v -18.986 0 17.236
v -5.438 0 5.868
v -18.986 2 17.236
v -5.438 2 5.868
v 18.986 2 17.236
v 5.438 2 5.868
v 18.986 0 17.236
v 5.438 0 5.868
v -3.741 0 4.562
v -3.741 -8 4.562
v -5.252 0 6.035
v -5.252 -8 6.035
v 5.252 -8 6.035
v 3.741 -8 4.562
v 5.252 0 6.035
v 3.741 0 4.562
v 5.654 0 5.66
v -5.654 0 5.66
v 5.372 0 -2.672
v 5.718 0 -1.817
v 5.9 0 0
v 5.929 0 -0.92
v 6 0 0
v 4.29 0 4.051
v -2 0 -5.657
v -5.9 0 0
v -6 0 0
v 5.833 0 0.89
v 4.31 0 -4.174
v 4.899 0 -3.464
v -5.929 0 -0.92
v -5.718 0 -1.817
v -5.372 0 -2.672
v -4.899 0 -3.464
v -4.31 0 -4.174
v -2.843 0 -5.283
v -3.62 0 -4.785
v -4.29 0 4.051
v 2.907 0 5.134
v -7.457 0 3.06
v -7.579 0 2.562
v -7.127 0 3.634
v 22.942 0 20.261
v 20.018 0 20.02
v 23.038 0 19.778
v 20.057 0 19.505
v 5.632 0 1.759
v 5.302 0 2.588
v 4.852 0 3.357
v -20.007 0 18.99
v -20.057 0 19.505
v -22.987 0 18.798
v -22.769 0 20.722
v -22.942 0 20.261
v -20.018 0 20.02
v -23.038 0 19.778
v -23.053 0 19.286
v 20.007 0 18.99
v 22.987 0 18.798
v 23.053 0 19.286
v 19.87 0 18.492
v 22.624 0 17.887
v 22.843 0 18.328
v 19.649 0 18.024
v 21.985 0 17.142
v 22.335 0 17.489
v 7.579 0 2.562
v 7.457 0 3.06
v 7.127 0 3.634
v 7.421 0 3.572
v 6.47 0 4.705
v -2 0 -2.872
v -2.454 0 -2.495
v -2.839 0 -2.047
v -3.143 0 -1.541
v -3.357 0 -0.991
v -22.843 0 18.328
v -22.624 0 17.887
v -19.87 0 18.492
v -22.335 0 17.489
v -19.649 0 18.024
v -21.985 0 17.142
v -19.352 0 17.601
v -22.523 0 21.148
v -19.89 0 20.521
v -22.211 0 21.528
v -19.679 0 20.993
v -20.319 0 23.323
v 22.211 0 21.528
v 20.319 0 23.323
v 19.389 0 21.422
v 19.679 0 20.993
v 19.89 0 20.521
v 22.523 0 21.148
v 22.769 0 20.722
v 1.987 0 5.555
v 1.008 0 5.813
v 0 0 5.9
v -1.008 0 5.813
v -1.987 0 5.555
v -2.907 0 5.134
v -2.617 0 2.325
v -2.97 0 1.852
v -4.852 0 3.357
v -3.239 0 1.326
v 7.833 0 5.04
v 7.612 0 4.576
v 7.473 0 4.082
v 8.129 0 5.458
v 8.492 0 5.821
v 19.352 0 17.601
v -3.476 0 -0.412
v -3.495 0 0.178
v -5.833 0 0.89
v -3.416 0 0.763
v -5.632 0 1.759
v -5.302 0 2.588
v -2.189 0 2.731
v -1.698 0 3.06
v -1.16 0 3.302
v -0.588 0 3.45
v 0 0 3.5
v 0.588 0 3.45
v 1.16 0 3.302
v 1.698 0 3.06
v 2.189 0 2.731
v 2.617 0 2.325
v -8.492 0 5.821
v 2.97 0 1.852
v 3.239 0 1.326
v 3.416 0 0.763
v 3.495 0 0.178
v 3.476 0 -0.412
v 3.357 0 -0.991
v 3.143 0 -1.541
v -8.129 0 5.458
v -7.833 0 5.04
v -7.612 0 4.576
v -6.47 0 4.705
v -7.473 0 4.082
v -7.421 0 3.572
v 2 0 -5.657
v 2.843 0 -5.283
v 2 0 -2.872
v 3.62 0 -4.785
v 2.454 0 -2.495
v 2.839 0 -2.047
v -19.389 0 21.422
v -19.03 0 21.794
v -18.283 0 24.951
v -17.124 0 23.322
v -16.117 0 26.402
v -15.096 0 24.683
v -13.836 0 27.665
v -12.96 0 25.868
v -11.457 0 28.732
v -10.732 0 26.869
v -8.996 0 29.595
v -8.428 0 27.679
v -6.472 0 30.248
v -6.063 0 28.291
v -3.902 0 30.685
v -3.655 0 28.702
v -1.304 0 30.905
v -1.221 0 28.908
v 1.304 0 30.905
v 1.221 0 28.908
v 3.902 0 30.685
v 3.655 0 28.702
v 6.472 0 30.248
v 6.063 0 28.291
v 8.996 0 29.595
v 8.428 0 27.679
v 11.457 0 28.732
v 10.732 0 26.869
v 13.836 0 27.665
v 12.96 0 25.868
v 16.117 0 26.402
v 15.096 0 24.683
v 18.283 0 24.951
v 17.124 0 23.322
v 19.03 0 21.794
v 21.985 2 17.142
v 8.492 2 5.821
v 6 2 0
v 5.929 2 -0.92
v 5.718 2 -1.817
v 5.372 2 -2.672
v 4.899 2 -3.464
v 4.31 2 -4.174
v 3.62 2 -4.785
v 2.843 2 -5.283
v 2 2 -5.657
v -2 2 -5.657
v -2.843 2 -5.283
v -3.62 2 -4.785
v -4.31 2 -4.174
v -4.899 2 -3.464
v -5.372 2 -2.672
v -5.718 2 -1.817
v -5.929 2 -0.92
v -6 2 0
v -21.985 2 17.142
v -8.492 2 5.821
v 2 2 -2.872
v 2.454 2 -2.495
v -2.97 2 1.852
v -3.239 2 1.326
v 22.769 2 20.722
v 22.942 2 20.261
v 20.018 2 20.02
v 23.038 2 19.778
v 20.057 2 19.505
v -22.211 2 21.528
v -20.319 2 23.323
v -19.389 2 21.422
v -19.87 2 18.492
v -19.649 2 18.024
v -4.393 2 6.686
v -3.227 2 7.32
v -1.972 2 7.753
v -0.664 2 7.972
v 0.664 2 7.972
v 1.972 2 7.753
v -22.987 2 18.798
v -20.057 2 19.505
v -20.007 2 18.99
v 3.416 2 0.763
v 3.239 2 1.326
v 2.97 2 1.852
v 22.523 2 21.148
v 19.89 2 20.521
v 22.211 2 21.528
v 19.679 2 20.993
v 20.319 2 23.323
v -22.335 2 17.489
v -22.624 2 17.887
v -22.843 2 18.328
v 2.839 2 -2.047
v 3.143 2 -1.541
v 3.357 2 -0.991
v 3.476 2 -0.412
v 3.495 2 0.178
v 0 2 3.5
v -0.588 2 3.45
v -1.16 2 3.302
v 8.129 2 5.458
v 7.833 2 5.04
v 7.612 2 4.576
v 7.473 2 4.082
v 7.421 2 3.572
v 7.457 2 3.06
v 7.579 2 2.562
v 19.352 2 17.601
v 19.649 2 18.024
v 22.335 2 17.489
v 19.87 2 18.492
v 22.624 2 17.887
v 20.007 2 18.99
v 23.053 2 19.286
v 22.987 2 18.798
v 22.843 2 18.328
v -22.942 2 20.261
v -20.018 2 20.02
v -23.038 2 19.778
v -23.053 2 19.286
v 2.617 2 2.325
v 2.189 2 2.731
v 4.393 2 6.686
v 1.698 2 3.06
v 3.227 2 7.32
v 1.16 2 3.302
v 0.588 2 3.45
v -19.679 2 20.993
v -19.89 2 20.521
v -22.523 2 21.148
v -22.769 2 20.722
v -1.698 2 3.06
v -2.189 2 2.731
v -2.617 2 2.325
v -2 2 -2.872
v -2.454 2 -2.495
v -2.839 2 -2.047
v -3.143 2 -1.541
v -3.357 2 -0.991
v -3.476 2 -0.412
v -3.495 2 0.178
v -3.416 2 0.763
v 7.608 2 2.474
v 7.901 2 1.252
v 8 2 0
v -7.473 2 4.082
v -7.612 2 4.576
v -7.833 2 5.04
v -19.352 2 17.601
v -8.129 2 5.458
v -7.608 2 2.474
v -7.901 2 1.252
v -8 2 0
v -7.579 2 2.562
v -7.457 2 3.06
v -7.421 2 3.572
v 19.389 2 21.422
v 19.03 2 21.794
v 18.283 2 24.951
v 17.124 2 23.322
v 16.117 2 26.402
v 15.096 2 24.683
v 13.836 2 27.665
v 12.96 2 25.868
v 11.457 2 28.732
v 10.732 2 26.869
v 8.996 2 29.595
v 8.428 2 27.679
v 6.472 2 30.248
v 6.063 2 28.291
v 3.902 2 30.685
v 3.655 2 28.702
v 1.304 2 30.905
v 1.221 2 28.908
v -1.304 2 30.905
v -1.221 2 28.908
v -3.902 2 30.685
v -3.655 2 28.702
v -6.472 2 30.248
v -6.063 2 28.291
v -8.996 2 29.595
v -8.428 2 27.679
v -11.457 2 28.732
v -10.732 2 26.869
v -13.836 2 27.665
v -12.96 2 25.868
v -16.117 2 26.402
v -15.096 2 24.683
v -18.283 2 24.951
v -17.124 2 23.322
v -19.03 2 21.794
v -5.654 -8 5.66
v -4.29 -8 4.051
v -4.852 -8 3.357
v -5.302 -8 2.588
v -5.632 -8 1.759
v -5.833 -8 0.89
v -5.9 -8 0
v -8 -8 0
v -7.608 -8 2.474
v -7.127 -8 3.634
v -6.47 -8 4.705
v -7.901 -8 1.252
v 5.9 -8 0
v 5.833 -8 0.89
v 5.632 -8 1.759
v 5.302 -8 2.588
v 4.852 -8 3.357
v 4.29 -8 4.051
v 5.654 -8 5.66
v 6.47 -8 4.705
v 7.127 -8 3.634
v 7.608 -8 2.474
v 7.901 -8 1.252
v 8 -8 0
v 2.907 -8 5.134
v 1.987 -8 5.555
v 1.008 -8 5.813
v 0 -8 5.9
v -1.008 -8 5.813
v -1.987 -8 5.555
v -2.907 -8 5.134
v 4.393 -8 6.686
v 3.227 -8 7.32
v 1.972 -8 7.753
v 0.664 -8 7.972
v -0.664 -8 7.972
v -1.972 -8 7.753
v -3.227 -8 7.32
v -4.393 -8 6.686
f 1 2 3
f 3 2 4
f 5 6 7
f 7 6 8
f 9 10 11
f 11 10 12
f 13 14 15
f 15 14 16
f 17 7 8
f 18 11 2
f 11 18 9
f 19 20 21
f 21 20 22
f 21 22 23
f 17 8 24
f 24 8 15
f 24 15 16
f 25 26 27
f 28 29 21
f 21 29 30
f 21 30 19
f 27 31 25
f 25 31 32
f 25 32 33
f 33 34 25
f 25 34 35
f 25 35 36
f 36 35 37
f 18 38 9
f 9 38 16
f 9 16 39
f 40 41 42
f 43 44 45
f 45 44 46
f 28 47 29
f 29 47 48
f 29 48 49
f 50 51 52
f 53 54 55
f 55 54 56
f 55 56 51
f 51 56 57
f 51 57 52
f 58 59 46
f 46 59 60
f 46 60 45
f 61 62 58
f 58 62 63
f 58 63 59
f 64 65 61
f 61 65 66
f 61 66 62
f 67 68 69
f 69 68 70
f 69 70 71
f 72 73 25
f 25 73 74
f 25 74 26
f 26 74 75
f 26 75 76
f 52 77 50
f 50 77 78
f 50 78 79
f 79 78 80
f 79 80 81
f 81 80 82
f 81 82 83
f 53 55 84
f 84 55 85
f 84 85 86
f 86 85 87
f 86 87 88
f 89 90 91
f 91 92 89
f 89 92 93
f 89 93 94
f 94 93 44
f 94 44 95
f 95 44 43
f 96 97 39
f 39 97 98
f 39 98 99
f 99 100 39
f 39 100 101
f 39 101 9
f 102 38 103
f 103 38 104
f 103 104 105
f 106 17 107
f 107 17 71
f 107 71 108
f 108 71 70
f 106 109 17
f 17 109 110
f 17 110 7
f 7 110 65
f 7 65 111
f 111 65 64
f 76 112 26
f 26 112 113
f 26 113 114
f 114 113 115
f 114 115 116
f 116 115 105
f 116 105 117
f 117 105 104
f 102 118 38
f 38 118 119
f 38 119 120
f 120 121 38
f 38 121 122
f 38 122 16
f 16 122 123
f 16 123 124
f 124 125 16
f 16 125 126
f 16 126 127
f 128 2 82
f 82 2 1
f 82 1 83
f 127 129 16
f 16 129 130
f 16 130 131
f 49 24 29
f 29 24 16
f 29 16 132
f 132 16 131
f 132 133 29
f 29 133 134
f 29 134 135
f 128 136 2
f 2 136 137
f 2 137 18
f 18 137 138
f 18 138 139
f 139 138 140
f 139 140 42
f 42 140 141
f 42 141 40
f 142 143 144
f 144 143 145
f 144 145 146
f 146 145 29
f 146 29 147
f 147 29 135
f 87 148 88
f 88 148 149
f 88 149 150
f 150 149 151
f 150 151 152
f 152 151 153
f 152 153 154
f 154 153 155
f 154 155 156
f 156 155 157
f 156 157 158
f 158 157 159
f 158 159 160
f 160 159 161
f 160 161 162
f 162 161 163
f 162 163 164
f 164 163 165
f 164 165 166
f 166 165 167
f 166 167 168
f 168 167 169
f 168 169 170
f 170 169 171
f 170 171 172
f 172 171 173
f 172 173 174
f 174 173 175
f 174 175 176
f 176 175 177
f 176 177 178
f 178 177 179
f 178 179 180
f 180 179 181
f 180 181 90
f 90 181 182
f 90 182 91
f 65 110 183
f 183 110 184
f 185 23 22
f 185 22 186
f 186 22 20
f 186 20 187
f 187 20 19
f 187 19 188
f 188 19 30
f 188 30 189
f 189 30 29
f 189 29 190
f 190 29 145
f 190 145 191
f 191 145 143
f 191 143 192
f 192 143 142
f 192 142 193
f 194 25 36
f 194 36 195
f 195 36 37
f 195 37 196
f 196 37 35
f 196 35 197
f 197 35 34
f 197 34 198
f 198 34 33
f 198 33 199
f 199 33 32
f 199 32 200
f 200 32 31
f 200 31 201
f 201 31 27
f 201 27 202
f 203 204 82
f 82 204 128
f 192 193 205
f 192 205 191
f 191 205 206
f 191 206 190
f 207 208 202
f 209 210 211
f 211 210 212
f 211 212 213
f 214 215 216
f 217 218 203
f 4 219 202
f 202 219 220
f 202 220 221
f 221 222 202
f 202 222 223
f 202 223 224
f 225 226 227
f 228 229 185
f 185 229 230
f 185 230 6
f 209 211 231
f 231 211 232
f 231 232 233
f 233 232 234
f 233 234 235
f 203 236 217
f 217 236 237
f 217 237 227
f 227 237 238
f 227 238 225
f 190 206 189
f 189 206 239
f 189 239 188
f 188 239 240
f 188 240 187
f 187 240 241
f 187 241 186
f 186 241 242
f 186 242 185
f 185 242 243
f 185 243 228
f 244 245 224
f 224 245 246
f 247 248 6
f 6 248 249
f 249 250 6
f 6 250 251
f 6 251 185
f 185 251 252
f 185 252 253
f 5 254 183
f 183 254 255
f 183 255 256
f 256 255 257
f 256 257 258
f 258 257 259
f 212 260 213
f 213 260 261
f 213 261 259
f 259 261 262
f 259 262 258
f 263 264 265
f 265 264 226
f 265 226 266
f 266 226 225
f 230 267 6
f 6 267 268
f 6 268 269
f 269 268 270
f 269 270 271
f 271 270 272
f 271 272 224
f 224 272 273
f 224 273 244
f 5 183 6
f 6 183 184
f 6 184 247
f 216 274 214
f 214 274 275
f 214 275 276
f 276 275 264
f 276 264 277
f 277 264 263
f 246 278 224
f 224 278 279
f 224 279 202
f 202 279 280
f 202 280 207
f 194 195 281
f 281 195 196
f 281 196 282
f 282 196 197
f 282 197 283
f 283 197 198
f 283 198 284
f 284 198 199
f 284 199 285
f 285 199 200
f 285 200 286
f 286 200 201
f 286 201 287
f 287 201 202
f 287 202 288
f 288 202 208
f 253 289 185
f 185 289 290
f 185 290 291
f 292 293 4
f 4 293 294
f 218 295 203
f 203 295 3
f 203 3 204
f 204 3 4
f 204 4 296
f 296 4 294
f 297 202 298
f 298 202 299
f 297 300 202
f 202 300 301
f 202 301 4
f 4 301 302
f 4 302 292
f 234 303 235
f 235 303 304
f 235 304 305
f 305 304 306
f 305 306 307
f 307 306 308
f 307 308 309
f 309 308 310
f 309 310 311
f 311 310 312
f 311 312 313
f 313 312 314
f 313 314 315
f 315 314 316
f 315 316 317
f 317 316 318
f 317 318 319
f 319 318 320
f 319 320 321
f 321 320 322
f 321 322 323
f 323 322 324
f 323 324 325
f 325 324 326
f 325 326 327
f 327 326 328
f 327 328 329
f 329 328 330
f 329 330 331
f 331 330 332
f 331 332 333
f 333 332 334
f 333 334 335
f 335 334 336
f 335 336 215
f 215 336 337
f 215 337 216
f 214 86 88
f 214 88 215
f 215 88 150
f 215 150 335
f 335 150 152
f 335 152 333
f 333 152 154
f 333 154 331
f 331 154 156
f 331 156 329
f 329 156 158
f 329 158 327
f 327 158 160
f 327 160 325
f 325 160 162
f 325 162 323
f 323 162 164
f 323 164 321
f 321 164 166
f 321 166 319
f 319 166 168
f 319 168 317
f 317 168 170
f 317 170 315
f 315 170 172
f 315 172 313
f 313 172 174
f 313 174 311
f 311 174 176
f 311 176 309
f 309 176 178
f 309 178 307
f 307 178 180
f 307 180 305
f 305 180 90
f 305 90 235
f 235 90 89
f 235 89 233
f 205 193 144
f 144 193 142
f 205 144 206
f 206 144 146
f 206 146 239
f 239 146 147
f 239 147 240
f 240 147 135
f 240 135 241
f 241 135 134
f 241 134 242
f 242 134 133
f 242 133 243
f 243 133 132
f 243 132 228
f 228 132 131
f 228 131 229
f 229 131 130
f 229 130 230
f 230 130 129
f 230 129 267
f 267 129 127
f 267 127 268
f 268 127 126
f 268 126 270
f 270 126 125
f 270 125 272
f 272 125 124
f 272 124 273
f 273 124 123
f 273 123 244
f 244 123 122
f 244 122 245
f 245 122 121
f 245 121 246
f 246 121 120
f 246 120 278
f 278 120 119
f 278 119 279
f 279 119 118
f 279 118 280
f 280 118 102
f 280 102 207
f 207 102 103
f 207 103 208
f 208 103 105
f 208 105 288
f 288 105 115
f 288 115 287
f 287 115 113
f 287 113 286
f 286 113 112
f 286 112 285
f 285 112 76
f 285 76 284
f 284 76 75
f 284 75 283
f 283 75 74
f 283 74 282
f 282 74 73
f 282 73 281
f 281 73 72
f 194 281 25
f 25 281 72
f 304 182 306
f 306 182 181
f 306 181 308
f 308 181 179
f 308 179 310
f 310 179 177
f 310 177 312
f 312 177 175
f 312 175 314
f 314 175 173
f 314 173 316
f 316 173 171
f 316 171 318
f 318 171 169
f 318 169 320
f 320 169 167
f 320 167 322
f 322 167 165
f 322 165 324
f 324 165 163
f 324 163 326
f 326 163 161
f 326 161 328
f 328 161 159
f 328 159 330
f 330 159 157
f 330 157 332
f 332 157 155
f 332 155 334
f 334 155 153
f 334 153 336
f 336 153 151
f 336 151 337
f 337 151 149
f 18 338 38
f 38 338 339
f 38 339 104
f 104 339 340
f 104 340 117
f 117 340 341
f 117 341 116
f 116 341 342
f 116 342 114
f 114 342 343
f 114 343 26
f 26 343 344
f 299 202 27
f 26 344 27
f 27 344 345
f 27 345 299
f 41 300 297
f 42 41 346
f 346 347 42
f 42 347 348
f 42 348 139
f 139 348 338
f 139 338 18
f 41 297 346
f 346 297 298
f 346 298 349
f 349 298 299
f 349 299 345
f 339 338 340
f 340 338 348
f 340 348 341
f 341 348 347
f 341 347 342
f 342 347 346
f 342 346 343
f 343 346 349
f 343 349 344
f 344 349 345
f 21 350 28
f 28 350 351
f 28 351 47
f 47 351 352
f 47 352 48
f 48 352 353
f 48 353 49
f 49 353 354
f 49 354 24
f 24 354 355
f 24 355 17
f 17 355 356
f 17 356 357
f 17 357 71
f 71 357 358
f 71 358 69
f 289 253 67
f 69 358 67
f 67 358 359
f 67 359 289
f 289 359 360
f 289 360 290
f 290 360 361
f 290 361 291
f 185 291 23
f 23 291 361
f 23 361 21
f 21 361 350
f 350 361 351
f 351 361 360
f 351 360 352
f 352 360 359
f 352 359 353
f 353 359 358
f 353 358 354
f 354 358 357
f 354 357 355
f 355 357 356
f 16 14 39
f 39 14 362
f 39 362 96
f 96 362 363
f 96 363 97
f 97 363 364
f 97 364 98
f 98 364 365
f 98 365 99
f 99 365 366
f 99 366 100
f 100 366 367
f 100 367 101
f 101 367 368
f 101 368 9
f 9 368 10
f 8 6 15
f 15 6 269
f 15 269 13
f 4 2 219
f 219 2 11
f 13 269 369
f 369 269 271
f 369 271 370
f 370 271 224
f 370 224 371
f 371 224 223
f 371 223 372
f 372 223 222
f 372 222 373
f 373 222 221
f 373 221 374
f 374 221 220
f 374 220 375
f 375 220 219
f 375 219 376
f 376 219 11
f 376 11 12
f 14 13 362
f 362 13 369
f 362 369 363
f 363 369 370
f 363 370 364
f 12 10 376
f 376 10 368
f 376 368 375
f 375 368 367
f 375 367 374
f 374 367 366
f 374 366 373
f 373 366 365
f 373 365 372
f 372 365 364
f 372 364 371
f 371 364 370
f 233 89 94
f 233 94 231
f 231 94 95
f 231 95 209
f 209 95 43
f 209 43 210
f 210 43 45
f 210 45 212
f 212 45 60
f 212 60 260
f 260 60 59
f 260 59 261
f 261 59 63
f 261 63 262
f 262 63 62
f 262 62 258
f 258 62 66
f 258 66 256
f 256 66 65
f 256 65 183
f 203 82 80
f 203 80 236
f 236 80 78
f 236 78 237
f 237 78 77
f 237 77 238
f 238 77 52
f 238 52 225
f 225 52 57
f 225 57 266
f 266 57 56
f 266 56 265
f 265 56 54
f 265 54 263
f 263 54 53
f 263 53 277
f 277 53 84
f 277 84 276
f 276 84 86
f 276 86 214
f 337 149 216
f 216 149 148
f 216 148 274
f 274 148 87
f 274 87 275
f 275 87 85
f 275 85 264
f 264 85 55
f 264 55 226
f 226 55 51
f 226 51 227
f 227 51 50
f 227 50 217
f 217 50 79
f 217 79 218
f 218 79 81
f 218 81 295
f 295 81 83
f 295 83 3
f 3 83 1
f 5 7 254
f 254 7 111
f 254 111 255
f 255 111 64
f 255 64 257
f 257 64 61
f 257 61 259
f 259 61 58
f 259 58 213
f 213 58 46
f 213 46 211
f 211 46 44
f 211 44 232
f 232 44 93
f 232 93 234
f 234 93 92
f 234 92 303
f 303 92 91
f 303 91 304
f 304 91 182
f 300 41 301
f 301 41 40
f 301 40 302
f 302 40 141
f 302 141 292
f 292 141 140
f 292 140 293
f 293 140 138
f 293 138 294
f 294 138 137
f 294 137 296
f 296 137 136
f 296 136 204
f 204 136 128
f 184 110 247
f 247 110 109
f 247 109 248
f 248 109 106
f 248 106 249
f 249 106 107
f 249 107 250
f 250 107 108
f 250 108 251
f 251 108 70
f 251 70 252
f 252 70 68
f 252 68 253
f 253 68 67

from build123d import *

# Parameters (mm, degrees)
BOSS_EXTRUDE1_DEPTH             = 2
BOSS_EXTRUDE2_DEPTH             = 8
BOSS_EXTRUDE2_DIRECTION_2_REACH = 41.402
BOSS_EXTRUDE3_START             = 2
BOSS_EXTRUDE3_DEPTH             = 2
FILLET1_R                       = 3


with BuildPart() as part:
    # Sketch1 → Boss-Extrude1 (new body)
    with BuildSketch(Plane(origin=(0, 0, 0), x_dir=(1, 0, 0), z_dir=(0, 1, 0))):
        with BuildLine():
            Line((-2, 2.872281323), (-2, 5.656854249))
            ThreePointArc((-2, 5.656854249), (-3.622947325, 4.782703491), (-4.903918858, 3.457105702))
            ThreePointArc((-4.903918858, 3.457105702), (-5.994787991, 0.250033892), (-5.174767653, -3.036738339))
            Line((-5.174767653, -3.036738339), (-24.325878731, -19.106428582))
            ThreePointArc((-24.325878731, -19.106428582), (0, -30.932248369), (24.325878731, -19.106428582))
            Line((24.325878731, -19.106428582), (5.174767653, -3.036738339))
            ThreePointArc((5.174767653, -3.036738339), (5.869268357, 1.245668074), (3.495228191, 4.876820675))
            ThreePointArc((3.495228191, 4.876820675), (2.775156989, 5.319633793), (2, 5.656854249))
            Line((2, 5.656854249), (2, 2.872281323))
            ThreePointArc((2, 2.872281323), (0, -3.5), (-2, 2.872281323))
        make_face()
        with BuildLine():
            Line((21.508214625, -19.352942248), (3.889192433, -4.568827226))
            ThreePointArc((3.889192433, -4.568827226), (1.593935567, -5.784407438), (-1, -5.916079783))
            ThreePointArc((-1, -5.916079783), (-2.53570957, -5.437846722), (-3.889192433, -4.568827226))
            Line((-3.889192433, -4.568827226), (-21.508214625, -19.352942248))
            ThreePointArc((-21.508214625, -19.352942248), (0, -28.933366033), (21.508214625, -19.352942248))
        make_face(mode=Mode.SUBTRACT)
    extrude(amount=BOSS_EXTRUDE1_DEPTH)

    # Sketch2 → Boss-Extrude2 (add)
    with BuildSketch(Plane(origin=(0, 0, 0), x_dir=(1, 0, 0), z_dir=(0, 1, 0))):
        with BuildLine():
            Line((-8, 0), (-5.9, 0))
            ThreePointArc((-5.9, 0), (-5.482722017, -2.179394246), (-4.289912109, -4.050512819))
            Line((-4.289912109, -4.050512819), (-5.653884688, -5.659822253))
            ThreePointArc((-5.653884688, -5.659822253), (-7.390232659, -3.063406804), (-8, 0))
        make_face()
        with BuildLine():
            Line((8, 0), (5.9, 0))
            ThreePointArc((5.9, 0), (5.482722017, -2.179394246), (4.289912109, -4.050512819))
            Line((4.289912109, -4.050512819), (5.653884688, -5.659822253))
            ThreePointArc((5.653884688, -5.659822253), (7.390232659, -3.063406804), (8, 0))
        make_face()
        with BuildLine():
            Line((3.741396832, -4.562011589), (5.251640152, -6.034921351))
            ThreePointArc((5.251640152, -6.034921351), (0, -8), (-5.251640152, -6.034921351))
            Line((-5.251640152, -6.034921351), (-3.741396832, -4.562011589))
            ThreePointArc((-3.741396832, -4.562011589), (0, -5.9), (3.741396832, -4.562011589))
        make_face()
    extrude(amount=-BOSS_EXTRUDE2_DEPTH)

    # Boss-Extrude2 direction 2: up to this face of the body (flat: up to its plane)
    boss_extrude2_direction_2_end = Plane(part.part.faces().sort_by_distance((14.359026746, 2, 11.537912405))[0])
    # Sketch2 → Boss-Extrude2 direction 2 (add, up to the picked face)
    with BuildSketch(Plane(origin=(0, 0, 0), x_dir=(1, 0, 0), z_dir=(0, 1, 0)), mode=Mode.PRIVATE) as boss_extrude2_direction_2_sk1:
        with BuildLine():
            Line((-8, 0), (-5.9, 0))
            ThreePointArc((-5.9, 0), (-5.482722017, -2.179394246), (-4.289912109, -4.050512819))
            Line((-4.289912109, -4.050512819), (-5.653884688, -5.659822253))
            ThreePointArc((-5.653884688, -5.659822253), (-7.390232659, -3.063406804), (-8, 0))
        make_face()
    boss_extrude2_direction_2_tool1 = split(extrude(boss_extrude2_direction_2_sk1.sketch, amount=BOSS_EXTRUDE2_DIRECTION_2_REACH, mode=Mode.PRIVATE), bisect_by=boss_extrude2_direction_2_end, keep=Keep.BOTH, mode=Mode.PRIVATE)
    # Sketch2 → Boss-Extrude2 direction 2 (add, up to the picked face)
    with BuildSketch(Plane(origin=(0, 0, 0), x_dir=(1, 0, 0), z_dir=(0, 1, 0)), mode=Mode.PRIVATE) as boss_extrude2_direction_2_sk2:
        with BuildLine():
            Line((8, 0), (5.9, 0))
            ThreePointArc((5.9, 0), (5.482722017, -2.179394246), (4.289912109, -4.050512819))
            Line((4.289912109, -4.050512819), (5.653884688, -5.659822253))
            ThreePointArc((5.653884688, -5.659822253), (7.390232659, -3.063406804), (8, 0))
        make_face()
    boss_extrude2_direction_2_tool2 = split(extrude(boss_extrude2_direction_2_sk2.sketch, amount=BOSS_EXTRUDE2_DIRECTION_2_REACH, mode=Mode.PRIVATE), bisect_by=boss_extrude2_direction_2_end, keep=Keep.BOTH, mode=Mode.PRIVATE)
    # Sketch2 → Boss-Extrude2 direction 2 (add, up to the picked face)
    with BuildSketch(Plane(origin=(0, 0, 0), x_dir=(1, 0, 0), z_dir=(0, 1, 0)), mode=Mode.PRIVATE) as boss_extrude2_direction_2_sk3:
        with BuildLine():
            Line((3.741396832, -4.562011589), (5.251640152, -6.034921351))
            ThreePointArc((5.251640152, -6.034921351), (0, -8), (-5.251640152, -6.034921351))
            Line((-5.251640152, -6.034921351), (-3.741396832, -4.562011589))
            ThreePointArc((-3.741396832, -4.562011589), (0, -5.9), (3.741396832, -4.562011589))
        make_face()
    boss_extrude2_direction_2_tool3 = split(extrude(boss_extrude2_direction_2_sk3.sketch, amount=BOSS_EXTRUDE2_DIRECTION_2_REACH, mode=Mode.PRIVATE), bisect_by=boss_extrude2_direction_2_end, keep=Keep.BOTH, mode=Mode.PRIVATE)
    add(boss_extrude2_direction_2_tool1.solids().sort_by(Axis((-6.329529, 0, 2.580804), (0, 1, 0)))[0])
    add(boss_extrude2_direction_2_tool2.solids().sort_by(Axis((6.329529, 0, 2.580804), (0, 1, 0)))[0])
    add(boss_extrude2_direction_2_tool3.solids().sort_by(Axis((0, 0, 6.444232), (0, 1, 0)))[0])

    # Sketch3 → Boss-Extrude3 (add)
    with BuildSketch(Plane(origin=(0, 0, 0), x_dir=(1, 0, 0), z_dir=(0, 1, 0)).offset(BOSS_EXTRUDE3_START)):
        with BuildLine():
            Line((-8, 0), (-5.903175189, 0))
            ThreePointArc((-5.903175189, 0), (0, -5.903175189), (5.903175189, 0))
            Line((5.903175189, 0), (8, 0))
            ThreePointArc((8, 0), (0, -8), (-8, 0))
        make_face()
    extrude(amount=-BOSS_EXTRUDE3_DEPTH)

    # Fillet1
    fillet1_edges = [part.edges().sort_by_distance(p)[0] for p in [
        (24.325878731, 1, 19.106428582),
        (-24.325878731, 1, 19.106428582),
        (-21.508214625, 1, 19.352942248),
        (21.508214625, 1, 19.352942248),
        (-6.723076879, 1, 4.33592404),
        (6.723076879, 1, 4.33592404),
    ]]
    fillet(fillet1_edges, radius=FILLET1_R)


solid = part.part
